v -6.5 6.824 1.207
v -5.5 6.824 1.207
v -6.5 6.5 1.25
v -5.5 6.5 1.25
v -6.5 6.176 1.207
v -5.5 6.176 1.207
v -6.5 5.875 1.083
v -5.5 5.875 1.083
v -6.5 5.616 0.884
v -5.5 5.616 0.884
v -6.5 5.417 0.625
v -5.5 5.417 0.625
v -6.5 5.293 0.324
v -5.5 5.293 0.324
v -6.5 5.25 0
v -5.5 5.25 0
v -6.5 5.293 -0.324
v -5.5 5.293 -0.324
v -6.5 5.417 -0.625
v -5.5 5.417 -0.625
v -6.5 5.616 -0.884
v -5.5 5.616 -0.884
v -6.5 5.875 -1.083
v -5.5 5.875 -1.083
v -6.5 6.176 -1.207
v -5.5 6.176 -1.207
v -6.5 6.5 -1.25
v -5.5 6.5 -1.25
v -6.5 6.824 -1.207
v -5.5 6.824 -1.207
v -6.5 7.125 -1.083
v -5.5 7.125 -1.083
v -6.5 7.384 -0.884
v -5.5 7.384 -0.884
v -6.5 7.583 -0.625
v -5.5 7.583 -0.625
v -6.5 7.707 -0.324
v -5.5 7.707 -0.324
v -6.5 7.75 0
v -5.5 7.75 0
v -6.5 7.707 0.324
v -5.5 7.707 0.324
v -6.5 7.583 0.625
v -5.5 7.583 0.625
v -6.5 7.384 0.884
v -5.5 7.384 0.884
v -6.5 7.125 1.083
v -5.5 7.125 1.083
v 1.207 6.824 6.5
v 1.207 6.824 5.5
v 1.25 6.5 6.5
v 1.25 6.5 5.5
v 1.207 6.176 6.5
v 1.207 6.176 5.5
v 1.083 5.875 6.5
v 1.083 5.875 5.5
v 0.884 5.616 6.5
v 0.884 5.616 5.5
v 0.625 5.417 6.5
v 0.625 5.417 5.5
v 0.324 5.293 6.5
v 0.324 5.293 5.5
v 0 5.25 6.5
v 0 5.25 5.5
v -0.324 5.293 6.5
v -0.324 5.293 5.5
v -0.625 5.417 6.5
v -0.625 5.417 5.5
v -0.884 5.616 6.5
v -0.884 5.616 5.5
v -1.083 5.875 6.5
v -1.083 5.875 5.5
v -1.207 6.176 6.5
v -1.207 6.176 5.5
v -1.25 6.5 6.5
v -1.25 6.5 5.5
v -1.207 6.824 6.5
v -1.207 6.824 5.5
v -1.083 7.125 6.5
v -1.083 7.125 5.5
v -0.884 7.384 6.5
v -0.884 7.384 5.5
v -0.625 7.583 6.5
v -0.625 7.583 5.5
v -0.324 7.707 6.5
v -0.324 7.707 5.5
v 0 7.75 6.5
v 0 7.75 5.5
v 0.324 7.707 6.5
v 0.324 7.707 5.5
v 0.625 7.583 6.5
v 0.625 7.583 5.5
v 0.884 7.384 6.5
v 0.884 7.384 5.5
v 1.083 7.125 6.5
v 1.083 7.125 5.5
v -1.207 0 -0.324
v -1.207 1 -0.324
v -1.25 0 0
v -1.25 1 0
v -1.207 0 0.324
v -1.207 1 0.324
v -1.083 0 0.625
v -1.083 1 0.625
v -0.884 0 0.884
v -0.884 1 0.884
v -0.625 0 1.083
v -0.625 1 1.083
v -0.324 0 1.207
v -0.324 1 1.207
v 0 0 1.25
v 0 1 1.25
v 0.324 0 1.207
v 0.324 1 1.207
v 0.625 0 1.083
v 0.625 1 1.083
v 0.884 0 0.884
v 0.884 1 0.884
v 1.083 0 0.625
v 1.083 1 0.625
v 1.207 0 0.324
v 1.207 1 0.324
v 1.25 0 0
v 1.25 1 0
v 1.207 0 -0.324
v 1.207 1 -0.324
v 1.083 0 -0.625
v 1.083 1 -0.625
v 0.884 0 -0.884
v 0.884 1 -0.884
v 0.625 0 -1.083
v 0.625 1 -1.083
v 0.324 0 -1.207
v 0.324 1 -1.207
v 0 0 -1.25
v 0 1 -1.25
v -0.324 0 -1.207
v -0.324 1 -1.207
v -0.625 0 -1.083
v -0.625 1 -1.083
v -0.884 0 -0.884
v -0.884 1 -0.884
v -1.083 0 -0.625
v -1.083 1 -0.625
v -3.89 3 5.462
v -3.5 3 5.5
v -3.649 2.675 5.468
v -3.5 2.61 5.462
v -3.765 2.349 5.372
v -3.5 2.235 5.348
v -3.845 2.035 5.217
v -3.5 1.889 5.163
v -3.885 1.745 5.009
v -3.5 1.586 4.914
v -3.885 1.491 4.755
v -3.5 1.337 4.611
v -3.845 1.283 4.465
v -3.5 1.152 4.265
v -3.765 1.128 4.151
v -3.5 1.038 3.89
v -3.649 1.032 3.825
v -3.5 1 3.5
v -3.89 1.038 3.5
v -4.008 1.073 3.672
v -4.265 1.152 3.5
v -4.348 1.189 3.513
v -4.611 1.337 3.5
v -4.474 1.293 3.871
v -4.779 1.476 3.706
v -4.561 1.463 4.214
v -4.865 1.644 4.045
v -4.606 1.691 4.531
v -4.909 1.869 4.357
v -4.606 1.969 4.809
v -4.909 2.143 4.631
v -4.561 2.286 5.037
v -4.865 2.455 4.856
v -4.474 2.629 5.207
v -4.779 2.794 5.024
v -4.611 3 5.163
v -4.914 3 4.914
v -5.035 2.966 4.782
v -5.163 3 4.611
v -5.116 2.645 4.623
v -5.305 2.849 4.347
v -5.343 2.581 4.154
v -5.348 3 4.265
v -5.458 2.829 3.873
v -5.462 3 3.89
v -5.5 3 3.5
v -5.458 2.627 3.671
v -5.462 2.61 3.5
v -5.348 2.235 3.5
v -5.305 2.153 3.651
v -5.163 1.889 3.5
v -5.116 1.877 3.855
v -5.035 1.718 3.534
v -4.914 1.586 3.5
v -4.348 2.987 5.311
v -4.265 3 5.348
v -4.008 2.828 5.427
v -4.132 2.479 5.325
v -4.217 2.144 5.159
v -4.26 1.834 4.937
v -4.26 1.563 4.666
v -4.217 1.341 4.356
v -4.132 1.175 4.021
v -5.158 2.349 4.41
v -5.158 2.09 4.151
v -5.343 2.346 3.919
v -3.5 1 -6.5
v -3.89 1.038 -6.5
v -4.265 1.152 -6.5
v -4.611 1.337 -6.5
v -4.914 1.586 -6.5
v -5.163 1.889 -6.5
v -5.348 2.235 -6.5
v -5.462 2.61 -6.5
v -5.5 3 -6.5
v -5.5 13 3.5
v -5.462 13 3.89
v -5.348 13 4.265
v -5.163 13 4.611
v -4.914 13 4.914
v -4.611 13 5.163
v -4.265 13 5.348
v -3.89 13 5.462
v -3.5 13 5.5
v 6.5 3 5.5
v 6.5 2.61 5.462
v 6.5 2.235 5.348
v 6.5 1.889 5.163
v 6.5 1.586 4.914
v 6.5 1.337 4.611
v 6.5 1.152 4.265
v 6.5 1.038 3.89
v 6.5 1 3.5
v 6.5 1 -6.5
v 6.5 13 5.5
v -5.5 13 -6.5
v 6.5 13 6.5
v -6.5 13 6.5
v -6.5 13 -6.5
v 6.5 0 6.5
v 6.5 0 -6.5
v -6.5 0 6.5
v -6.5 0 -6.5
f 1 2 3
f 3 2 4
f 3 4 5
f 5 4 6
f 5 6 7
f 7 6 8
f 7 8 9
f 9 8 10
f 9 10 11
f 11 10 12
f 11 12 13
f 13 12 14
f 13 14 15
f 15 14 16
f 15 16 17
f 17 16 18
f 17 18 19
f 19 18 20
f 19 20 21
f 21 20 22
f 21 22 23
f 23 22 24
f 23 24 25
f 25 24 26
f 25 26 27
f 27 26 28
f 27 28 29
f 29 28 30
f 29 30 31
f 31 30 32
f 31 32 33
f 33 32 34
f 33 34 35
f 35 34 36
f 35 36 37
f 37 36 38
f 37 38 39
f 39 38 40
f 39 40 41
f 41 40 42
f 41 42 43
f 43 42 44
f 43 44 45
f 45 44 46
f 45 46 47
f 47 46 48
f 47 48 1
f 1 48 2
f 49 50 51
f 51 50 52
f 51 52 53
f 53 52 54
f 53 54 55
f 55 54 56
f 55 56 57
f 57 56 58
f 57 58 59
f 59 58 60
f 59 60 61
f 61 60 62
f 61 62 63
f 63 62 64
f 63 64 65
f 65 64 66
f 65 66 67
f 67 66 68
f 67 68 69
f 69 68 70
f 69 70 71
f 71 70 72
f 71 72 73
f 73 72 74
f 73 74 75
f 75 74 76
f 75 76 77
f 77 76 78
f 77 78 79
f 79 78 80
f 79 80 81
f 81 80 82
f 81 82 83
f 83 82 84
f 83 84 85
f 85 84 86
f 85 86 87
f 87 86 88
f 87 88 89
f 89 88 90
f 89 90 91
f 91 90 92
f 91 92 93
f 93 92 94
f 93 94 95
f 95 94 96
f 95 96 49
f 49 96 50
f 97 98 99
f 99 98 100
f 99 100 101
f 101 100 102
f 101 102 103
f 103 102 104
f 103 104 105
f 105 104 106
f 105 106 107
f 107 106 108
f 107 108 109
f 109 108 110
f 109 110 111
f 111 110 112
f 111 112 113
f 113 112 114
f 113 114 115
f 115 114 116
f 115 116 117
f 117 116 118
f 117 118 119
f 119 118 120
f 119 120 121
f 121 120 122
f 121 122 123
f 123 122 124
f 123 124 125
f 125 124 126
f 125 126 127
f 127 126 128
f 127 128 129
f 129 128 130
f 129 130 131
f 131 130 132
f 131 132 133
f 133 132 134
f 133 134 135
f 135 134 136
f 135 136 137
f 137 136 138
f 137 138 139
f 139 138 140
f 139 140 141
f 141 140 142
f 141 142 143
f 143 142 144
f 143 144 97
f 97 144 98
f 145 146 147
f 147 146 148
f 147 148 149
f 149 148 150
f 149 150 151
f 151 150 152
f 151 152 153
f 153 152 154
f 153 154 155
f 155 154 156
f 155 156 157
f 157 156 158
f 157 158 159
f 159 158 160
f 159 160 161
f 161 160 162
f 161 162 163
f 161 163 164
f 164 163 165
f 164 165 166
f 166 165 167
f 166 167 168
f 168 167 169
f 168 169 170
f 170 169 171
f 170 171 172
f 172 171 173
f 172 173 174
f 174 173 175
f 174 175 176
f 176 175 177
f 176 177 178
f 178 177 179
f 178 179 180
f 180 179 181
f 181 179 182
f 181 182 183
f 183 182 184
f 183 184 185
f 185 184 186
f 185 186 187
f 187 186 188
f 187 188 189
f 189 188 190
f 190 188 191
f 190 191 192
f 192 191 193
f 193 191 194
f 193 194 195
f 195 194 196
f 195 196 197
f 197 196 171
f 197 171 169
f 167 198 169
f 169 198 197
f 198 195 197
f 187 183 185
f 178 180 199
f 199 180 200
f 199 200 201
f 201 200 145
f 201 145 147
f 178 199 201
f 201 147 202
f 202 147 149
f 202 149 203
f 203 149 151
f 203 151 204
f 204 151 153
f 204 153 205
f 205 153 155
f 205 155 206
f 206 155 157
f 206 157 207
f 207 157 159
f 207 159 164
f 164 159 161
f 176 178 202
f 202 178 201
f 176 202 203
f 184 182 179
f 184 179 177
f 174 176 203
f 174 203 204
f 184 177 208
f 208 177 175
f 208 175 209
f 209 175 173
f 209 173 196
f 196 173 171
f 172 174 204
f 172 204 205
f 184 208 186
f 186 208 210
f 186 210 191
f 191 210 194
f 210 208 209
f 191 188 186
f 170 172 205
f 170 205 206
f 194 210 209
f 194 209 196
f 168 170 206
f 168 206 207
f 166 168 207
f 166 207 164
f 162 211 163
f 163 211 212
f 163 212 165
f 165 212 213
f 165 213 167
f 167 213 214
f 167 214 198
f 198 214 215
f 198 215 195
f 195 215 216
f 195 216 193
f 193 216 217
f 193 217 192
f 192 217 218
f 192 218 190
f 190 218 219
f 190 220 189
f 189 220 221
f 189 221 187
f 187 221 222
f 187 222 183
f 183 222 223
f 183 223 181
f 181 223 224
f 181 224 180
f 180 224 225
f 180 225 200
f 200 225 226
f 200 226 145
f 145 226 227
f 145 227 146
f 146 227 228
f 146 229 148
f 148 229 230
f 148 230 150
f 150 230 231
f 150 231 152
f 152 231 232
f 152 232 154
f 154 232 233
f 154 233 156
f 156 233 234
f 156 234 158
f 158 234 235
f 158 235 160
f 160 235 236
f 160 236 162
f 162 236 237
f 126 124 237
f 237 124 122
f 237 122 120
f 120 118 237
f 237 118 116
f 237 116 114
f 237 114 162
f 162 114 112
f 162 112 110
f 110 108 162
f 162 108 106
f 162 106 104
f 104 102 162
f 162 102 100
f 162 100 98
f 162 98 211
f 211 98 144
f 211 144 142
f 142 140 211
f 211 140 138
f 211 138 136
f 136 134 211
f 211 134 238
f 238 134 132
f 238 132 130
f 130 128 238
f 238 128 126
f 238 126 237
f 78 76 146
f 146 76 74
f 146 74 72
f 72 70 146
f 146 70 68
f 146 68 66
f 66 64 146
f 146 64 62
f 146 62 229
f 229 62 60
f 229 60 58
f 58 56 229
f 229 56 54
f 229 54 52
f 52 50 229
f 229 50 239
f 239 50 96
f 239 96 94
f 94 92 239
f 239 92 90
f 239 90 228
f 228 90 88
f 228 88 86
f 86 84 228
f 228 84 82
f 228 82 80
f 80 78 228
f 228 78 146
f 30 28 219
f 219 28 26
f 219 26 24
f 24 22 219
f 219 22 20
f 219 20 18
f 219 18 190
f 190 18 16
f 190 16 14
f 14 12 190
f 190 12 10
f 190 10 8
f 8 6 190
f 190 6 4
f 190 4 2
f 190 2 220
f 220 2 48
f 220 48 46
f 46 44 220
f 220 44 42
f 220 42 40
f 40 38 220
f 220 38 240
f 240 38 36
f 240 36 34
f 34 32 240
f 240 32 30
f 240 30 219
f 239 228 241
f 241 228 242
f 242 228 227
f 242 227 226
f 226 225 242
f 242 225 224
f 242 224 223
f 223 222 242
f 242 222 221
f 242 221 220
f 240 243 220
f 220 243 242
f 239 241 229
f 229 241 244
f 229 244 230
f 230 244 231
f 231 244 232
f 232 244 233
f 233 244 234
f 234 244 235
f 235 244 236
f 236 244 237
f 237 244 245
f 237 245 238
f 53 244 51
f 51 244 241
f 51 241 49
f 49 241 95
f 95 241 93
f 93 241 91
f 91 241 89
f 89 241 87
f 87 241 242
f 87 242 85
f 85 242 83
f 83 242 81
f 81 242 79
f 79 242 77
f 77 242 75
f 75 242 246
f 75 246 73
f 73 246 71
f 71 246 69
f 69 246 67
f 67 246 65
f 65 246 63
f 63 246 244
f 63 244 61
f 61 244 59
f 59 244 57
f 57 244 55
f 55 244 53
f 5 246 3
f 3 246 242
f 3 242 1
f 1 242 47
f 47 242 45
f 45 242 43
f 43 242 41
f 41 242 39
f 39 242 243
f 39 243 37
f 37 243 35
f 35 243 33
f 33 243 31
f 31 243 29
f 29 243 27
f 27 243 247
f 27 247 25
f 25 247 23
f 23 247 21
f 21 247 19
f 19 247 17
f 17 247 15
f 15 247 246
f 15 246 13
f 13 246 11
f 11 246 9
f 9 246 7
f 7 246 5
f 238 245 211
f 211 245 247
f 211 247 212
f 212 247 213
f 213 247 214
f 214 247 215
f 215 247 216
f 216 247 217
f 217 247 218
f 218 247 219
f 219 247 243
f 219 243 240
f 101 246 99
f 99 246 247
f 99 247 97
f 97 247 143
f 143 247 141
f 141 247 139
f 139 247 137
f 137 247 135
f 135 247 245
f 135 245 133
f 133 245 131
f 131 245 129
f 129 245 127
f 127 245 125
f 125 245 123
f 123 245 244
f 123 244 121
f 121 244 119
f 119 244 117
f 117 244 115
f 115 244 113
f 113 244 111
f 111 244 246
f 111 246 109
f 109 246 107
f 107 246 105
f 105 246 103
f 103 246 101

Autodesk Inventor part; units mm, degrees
ref_plane "YZ Plane" through (0, 0, 0) normal (1, 0, 0) x (0, 1, 0)
ref_plane "XZ Plane" through (0, 0, 0) normal (0, 1, 0) x (-1, 0, 0)
ref_plane "XY Plane" through (0, 0, 0) normal (0, 0, 1) x (1, 0, 0)
sketch "Boceto1" plane through (0, 0, 0) normal (0, 1, 0) x (-1, 0, 0)
  line L0 (-6.5, 6.5) -> (6.5, 6.5)
  line L1 (6.5, 6.5) -> (6.5, -6.5)
  line L2 (6.5, -6.5) -> (-6.5, -6.5)
  line L3 (-6.5, -6.5) -> (-6.5, 6.5)
  line L4 (-6.5, 6.5) -> (6.5, -6.5) construction
  line L5 (6.5, 6.5) -> (-6.5, -6.5) construction
  point P0 (0, 0)
  dimension "d0" = 13
  dimension "d1" = 13
extrude "Extrusión1" add sketch "Boceto1" along normal blind 13
shell "Vaciado1" thickness 1 removed faces 3 at (2.1667, 13, 2.1667) at (2.1667, 4.3333, -6.5) at (6.5, 4.3333, 2.1667)
fillet "Empalme1" radius 2 3 edges at (0.5, 1, 5.5) (-5.5, 1, -0.5) (-5.5, 7, 5.5)
sketch "Boceto2" plane through (-3.5, 1, 3.5) normal (0, 1, 0) x (1, 0, 0)
  line L0 (0, 10) -> (10, 10) projected
  line L1 (10, 10) -> (10, 0) projected
  point P0 (3.5, 3.5)
  point P1 (3.5, 3.5)
  dimension "d6" = 6.5
  dimension "d7" = 6.5
hole "Agujero1" at (0, 1, 0) direction (0, -1, 0) diameter 2.5 depth 3 tip angle 118
sketch "Boceto3" plane through (6.5, 13, 5.5) normal (0, 0, -1) x (-1, 0, 0)
  line L0 (0, 0) -> (10, 0) projected
  line L1 (0, -10) -> (0, 0) projected
  point P0 (6.5, -13)
  point P1 (6.5, -6.5)
  dimension "d15" = 6.5
  dimension "d16" = 6.5
hole "Agujero2" at (0, 6.5, 5.5) direction (0, 0, 1) diameter 2.5 depth 3 tip angle 118
sketch "Boceto4" plane through (-5.5, 3, -6.5) normal (1, 0, 0) x (0, 0, -1)
  line L0 (0, 10) -> (0, 0) projected
  line L1 (-10, 10) -> (0, 10) projected
  point P0 (-6.5, -3)
  point P1 (-6.5, 3.5)
  dimension "d24" = 6.5
  dimension "d25" = 6.5
hole "Agujero3" at (-5.5, 6.5, 0) direction (-1, 0, 0) diameter 2.5 depth 3 tip angle 118
properties part number "Escuadra_triple"
